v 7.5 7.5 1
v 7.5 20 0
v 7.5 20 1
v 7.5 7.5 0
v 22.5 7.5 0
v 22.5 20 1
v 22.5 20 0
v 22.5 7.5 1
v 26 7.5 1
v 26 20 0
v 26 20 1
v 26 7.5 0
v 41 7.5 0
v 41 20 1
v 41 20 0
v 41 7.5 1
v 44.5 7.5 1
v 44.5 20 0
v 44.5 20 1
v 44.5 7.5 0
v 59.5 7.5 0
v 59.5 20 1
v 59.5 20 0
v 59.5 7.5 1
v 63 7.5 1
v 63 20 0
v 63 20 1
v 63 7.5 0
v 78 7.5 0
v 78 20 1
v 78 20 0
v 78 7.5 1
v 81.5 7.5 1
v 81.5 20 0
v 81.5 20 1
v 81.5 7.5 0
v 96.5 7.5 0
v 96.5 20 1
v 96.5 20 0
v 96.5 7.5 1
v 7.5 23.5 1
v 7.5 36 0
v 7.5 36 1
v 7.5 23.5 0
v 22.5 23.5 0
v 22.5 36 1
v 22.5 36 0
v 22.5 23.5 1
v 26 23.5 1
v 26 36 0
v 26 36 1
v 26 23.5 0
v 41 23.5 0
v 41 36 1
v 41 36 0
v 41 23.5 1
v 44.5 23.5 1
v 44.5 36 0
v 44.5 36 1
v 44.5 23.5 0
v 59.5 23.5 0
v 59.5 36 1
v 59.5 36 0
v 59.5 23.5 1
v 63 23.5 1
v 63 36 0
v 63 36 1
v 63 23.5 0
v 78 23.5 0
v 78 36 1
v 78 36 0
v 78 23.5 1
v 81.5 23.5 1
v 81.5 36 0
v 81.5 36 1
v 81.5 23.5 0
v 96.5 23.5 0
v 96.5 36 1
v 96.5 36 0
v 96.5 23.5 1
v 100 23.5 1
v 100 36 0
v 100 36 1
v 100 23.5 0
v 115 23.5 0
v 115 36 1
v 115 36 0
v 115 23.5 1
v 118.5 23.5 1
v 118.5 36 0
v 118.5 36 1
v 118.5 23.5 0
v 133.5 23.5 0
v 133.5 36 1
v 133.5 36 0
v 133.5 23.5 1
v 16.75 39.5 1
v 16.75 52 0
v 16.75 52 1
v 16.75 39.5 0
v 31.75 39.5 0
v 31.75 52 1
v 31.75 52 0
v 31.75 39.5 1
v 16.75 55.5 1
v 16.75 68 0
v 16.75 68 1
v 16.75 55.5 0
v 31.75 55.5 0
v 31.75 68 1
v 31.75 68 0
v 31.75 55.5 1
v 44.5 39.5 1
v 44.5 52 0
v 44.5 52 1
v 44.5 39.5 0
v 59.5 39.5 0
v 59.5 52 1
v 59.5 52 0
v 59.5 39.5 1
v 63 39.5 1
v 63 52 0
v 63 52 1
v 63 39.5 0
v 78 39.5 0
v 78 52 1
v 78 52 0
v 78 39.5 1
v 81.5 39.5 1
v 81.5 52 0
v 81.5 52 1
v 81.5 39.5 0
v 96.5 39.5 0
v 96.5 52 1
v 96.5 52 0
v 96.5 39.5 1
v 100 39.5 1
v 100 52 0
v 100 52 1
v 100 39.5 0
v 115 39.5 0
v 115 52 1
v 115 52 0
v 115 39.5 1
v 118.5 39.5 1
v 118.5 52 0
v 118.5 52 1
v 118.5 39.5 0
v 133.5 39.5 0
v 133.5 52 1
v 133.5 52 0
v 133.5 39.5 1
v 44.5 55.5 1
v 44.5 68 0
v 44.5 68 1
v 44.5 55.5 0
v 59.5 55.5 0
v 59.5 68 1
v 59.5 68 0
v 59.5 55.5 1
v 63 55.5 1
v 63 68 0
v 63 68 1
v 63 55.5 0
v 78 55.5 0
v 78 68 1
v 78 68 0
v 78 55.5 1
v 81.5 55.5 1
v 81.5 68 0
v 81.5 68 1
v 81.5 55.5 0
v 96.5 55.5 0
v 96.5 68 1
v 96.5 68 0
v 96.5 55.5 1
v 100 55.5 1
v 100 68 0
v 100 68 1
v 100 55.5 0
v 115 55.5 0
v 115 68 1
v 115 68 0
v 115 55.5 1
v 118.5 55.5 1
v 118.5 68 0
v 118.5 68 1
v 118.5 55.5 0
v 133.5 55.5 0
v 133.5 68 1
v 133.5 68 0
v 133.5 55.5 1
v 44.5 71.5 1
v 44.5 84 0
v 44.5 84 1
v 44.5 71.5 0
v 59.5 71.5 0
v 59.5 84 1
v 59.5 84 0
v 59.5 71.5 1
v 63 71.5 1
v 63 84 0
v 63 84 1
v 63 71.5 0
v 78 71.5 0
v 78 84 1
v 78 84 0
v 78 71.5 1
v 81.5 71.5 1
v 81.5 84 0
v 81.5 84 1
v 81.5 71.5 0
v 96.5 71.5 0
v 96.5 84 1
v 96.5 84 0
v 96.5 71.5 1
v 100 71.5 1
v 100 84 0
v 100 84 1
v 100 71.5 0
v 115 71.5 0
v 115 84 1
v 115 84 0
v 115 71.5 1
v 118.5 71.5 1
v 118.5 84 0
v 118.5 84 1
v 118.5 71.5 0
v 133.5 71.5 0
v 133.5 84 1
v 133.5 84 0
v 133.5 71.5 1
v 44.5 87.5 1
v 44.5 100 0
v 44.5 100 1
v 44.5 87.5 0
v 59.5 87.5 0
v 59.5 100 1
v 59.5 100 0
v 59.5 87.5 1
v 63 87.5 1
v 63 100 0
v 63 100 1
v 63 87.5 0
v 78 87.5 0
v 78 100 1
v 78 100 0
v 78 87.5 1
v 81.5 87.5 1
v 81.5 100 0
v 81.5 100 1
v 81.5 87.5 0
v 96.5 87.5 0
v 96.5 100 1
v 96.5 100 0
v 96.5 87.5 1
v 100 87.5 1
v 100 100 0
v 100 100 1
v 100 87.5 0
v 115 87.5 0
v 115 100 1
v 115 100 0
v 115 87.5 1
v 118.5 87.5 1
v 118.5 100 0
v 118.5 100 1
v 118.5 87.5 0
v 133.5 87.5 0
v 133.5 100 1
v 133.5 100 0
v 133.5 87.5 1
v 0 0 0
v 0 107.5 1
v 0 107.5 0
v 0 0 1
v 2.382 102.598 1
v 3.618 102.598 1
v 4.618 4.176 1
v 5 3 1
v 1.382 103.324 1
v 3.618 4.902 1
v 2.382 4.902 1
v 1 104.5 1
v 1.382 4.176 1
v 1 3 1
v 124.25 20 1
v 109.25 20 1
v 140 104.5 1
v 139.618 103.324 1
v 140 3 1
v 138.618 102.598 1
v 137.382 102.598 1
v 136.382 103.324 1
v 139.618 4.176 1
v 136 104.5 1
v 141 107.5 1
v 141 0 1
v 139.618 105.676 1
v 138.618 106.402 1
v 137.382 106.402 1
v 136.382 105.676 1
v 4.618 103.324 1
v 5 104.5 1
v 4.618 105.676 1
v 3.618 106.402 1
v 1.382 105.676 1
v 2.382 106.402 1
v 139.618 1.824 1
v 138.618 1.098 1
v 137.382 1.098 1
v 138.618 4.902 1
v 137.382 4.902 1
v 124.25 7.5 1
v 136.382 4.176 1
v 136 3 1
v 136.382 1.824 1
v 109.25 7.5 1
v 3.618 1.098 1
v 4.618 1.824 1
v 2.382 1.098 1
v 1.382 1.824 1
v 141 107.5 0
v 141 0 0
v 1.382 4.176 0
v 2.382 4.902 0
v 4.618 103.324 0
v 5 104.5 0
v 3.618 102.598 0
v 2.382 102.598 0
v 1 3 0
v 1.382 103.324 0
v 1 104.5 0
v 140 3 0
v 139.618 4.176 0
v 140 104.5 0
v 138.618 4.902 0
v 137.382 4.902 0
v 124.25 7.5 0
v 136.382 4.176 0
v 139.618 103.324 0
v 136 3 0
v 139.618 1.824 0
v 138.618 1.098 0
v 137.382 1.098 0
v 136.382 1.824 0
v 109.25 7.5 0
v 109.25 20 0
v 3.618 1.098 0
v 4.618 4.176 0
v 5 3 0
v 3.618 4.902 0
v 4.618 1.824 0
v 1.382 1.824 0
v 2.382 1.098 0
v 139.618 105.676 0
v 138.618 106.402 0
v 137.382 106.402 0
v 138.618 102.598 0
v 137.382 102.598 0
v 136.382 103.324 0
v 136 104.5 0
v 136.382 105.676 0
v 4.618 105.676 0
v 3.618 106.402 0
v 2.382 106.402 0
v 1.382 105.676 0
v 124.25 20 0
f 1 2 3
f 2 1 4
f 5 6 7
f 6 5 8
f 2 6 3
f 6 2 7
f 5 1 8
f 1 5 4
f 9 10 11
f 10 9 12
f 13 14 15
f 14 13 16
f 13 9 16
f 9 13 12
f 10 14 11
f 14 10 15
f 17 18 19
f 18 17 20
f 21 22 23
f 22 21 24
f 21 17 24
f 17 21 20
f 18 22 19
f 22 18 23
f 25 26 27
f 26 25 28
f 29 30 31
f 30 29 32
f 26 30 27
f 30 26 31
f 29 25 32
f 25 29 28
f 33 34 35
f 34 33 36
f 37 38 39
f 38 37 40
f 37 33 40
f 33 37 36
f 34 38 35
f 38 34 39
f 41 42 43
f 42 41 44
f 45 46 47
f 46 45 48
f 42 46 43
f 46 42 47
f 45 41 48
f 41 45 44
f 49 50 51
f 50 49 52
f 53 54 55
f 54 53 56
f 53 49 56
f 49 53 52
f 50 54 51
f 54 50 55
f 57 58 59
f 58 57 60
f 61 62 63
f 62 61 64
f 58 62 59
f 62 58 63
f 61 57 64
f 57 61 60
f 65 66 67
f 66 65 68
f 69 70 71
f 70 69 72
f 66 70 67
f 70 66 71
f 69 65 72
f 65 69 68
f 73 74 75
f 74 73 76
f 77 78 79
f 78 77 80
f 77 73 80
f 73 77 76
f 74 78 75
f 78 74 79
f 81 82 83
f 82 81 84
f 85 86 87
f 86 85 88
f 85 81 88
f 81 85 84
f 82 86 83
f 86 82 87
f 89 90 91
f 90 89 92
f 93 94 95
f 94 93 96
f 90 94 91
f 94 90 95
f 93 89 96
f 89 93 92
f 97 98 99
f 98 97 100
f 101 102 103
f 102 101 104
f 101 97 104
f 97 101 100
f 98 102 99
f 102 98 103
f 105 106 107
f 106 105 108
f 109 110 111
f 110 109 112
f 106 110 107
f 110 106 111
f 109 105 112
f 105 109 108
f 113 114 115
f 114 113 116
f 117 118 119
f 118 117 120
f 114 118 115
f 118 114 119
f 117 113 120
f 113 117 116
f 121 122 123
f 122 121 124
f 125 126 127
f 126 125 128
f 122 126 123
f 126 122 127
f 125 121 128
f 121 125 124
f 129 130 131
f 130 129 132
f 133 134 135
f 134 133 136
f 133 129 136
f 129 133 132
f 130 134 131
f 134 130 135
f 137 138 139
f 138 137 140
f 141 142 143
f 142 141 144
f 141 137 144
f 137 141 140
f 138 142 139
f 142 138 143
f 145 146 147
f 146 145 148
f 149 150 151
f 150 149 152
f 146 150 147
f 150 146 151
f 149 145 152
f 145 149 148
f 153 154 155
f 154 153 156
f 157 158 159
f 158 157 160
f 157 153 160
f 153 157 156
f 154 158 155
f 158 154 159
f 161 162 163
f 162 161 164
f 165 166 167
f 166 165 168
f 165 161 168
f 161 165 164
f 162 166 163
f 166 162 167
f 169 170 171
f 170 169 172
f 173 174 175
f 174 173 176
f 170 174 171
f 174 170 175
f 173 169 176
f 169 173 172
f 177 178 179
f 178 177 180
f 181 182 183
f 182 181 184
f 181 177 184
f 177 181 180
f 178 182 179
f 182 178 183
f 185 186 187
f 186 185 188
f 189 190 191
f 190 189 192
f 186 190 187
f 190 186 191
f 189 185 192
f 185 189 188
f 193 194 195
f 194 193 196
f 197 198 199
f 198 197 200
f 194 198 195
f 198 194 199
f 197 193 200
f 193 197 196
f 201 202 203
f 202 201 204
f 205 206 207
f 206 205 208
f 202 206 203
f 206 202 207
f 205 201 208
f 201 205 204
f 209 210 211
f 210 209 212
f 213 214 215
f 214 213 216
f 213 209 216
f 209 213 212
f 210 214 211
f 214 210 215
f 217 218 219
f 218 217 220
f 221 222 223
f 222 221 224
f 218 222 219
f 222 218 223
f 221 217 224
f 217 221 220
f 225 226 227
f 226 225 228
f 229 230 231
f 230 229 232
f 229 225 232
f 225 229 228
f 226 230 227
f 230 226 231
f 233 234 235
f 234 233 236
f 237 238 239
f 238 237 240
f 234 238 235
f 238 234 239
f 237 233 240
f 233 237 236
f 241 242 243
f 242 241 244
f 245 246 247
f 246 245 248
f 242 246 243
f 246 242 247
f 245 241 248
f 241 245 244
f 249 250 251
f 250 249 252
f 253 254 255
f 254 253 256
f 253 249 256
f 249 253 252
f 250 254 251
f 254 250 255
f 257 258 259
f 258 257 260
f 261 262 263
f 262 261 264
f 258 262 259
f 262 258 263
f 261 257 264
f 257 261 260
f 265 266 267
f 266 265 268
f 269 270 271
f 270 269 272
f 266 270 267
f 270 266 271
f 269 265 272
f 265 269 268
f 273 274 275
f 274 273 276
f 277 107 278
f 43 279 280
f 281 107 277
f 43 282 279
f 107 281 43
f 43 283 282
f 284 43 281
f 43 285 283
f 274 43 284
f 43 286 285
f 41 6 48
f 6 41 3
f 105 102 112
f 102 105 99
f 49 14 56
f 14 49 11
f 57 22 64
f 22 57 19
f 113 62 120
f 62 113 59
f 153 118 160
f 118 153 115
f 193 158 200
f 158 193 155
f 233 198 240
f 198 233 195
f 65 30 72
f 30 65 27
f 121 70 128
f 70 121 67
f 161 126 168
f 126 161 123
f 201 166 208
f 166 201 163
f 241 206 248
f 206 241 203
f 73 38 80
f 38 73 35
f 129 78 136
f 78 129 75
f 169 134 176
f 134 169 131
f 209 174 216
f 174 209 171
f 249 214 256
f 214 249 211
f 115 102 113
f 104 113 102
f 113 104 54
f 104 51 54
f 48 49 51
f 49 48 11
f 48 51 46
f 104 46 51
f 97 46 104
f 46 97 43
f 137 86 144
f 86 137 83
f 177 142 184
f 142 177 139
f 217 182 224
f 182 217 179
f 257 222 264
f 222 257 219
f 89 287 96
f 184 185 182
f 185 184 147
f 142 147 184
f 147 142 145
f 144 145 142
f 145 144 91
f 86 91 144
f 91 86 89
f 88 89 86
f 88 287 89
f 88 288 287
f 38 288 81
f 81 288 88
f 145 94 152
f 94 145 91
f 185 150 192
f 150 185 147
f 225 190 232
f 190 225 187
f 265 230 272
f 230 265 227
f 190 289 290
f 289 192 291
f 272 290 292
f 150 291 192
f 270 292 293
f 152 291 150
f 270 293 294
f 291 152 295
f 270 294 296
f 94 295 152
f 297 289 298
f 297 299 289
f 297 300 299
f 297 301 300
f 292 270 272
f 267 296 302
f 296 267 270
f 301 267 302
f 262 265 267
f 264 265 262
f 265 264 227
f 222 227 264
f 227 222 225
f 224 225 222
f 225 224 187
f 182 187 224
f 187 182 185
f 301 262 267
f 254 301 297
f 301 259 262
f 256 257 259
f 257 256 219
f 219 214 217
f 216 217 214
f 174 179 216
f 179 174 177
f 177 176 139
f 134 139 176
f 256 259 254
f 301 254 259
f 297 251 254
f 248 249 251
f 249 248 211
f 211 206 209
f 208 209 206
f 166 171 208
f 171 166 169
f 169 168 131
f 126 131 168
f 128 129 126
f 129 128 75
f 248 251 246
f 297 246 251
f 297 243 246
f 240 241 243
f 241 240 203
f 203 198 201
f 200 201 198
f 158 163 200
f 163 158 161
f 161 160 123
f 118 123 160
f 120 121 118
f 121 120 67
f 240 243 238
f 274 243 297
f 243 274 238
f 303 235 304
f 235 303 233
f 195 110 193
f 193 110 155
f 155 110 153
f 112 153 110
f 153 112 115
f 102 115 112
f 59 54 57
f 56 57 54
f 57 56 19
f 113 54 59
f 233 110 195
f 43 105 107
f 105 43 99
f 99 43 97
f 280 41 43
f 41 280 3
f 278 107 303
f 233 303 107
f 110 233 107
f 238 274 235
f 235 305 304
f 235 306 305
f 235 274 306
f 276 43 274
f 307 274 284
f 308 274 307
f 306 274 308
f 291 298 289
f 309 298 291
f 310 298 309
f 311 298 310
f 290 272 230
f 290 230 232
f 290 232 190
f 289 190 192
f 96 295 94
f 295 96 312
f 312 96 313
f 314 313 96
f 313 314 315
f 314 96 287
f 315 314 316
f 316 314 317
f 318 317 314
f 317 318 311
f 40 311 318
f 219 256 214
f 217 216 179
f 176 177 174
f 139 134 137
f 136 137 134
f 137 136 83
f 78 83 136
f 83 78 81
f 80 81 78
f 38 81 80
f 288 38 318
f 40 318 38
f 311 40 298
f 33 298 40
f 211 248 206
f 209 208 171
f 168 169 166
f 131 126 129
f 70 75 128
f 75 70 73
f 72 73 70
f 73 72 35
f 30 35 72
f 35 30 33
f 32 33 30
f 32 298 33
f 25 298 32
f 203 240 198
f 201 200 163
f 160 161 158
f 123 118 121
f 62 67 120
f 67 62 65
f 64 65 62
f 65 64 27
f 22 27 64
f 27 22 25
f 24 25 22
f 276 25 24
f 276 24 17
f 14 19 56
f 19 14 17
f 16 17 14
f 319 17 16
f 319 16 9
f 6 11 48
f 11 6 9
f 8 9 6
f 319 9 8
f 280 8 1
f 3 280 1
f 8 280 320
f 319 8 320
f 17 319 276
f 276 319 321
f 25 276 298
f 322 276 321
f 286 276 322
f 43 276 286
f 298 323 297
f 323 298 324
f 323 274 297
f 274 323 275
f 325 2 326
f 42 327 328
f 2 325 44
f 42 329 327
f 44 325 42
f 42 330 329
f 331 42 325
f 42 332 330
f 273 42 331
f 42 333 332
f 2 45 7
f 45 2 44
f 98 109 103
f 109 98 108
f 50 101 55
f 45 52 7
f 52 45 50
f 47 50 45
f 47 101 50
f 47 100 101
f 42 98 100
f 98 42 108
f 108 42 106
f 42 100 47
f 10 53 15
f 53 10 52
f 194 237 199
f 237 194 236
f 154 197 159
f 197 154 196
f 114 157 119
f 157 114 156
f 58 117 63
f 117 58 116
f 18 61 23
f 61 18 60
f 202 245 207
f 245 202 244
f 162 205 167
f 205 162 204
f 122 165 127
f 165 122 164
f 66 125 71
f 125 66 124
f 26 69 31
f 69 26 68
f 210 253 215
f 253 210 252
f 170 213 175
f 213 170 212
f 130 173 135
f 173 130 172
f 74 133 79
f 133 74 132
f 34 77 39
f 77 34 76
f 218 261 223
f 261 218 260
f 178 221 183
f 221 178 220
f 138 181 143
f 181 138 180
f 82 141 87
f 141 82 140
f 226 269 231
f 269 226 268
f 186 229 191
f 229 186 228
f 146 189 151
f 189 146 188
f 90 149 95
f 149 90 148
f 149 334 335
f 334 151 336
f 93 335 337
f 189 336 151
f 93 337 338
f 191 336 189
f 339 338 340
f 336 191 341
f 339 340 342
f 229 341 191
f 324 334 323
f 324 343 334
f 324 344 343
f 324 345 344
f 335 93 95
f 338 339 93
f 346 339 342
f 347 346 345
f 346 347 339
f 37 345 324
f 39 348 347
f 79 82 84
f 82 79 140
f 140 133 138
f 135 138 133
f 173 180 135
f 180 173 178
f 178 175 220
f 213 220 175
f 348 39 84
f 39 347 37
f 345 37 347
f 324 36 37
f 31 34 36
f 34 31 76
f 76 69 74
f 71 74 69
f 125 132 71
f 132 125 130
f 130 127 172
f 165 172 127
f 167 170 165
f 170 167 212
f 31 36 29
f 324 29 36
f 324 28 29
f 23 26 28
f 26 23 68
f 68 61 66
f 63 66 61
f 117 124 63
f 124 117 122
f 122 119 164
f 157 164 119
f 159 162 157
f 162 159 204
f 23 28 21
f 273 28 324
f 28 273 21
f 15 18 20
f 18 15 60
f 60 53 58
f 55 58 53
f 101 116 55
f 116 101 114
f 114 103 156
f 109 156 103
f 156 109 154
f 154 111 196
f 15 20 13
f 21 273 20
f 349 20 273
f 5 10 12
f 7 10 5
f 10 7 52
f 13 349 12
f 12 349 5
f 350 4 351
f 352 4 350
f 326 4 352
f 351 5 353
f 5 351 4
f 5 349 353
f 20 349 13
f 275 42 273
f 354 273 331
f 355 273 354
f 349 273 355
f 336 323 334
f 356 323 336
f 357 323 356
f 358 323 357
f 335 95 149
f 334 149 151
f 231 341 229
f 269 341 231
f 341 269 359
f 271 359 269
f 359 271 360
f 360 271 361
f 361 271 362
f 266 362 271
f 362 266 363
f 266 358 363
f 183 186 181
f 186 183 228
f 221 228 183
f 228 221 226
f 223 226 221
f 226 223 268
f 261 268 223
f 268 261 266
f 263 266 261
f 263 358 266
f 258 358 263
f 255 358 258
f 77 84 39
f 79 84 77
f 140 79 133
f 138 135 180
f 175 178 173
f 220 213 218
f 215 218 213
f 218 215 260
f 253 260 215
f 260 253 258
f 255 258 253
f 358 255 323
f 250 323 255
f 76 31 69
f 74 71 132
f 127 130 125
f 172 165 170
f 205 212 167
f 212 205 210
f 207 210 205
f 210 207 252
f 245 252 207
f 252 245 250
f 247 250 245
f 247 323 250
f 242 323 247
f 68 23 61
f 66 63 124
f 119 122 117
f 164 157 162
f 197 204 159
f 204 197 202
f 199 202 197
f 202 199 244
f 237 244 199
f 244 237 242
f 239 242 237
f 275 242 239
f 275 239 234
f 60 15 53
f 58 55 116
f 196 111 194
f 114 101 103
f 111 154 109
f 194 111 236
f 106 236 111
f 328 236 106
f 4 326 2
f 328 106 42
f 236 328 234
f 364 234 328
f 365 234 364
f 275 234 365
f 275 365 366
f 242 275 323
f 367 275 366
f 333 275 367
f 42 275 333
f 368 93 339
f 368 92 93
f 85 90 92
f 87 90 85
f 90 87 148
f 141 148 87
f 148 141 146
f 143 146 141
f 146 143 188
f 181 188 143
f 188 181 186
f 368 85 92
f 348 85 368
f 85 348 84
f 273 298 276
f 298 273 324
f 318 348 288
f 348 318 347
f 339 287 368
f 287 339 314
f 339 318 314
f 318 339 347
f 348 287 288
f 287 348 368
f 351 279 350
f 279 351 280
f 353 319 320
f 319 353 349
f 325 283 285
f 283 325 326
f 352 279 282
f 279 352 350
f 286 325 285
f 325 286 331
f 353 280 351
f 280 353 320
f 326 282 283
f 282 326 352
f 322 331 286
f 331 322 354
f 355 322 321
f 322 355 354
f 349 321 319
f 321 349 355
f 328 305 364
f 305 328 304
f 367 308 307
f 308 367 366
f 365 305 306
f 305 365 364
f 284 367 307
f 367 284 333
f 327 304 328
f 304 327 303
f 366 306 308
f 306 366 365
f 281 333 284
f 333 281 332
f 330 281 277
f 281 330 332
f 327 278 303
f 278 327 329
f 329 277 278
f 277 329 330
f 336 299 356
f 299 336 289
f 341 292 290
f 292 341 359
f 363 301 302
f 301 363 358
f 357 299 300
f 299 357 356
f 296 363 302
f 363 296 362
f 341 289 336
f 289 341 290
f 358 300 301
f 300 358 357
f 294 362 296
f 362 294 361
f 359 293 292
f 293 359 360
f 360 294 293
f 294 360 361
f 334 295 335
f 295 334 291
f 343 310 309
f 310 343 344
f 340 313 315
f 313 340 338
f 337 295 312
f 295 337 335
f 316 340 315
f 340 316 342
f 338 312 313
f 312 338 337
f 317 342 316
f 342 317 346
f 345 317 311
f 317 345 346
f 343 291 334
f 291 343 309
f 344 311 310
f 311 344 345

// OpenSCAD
/* ModuleA
 * All keyholes made. Should be valid for creation.
 */
keyCols = 7;
keyRows = 6;
keyX = 15;
keyY = 12.5;
keySpace = 3.5;
edgeSpaceAddition = 5;
edgeSpace = (edgeSpaceAddition*2)-keySpace;
keyZ = -1;

moduleX = (edgeSpace+edgeSpaceAddition)+(keySpace*keyCols)+keyX*(keyCols-1)+keyX;
moduleY = (edgeSpace+edgeSpaceAddition)+(keySpace*keyRows)+keyY*(keyRows-1)+keyY;
moduleZ = 1;

keySize = [keyX, keyY, moduleZ+2];

function position(x,y,z) = [edgeSpace+keySpace*x+keyX*(x-1)-(edgeSpaceAddition/2), edgeSpace+keySpace*y+keyY*(y-1)-(edgeSpaceAddition/2), z];

module keyHoles (yStart, yEnd, xStart, xEnd){
    for(y = [yStart:yEnd]){
        for(x = [xStart:xEnd]){
			translate(position(x,y,keyZ)) cube(keySize);
        }
    }
}

module screwHole (x, y){
	translate([x,y,keyZ]) cylinder(h=moduleZ+2, r=2, $fn=10);
}

difference(){
    cube([moduleX,moduleY,moduleZ]);

	keyHoles(1,1,1,5);
	keyHoles(1,1,6.5,6.5);

	keyHoles(2,2,1,7);

	keyHoles(3,4,1.5,1.5);
	keyHoles(3,4,3,7);

	keyHoles(5,6,3,7);
	screwHole(3,3);
	screwHole(3,moduleY-3);
	screwHole(moduleX-3,moduleY-3);
	screwHole(moduleX-3,3);
}
